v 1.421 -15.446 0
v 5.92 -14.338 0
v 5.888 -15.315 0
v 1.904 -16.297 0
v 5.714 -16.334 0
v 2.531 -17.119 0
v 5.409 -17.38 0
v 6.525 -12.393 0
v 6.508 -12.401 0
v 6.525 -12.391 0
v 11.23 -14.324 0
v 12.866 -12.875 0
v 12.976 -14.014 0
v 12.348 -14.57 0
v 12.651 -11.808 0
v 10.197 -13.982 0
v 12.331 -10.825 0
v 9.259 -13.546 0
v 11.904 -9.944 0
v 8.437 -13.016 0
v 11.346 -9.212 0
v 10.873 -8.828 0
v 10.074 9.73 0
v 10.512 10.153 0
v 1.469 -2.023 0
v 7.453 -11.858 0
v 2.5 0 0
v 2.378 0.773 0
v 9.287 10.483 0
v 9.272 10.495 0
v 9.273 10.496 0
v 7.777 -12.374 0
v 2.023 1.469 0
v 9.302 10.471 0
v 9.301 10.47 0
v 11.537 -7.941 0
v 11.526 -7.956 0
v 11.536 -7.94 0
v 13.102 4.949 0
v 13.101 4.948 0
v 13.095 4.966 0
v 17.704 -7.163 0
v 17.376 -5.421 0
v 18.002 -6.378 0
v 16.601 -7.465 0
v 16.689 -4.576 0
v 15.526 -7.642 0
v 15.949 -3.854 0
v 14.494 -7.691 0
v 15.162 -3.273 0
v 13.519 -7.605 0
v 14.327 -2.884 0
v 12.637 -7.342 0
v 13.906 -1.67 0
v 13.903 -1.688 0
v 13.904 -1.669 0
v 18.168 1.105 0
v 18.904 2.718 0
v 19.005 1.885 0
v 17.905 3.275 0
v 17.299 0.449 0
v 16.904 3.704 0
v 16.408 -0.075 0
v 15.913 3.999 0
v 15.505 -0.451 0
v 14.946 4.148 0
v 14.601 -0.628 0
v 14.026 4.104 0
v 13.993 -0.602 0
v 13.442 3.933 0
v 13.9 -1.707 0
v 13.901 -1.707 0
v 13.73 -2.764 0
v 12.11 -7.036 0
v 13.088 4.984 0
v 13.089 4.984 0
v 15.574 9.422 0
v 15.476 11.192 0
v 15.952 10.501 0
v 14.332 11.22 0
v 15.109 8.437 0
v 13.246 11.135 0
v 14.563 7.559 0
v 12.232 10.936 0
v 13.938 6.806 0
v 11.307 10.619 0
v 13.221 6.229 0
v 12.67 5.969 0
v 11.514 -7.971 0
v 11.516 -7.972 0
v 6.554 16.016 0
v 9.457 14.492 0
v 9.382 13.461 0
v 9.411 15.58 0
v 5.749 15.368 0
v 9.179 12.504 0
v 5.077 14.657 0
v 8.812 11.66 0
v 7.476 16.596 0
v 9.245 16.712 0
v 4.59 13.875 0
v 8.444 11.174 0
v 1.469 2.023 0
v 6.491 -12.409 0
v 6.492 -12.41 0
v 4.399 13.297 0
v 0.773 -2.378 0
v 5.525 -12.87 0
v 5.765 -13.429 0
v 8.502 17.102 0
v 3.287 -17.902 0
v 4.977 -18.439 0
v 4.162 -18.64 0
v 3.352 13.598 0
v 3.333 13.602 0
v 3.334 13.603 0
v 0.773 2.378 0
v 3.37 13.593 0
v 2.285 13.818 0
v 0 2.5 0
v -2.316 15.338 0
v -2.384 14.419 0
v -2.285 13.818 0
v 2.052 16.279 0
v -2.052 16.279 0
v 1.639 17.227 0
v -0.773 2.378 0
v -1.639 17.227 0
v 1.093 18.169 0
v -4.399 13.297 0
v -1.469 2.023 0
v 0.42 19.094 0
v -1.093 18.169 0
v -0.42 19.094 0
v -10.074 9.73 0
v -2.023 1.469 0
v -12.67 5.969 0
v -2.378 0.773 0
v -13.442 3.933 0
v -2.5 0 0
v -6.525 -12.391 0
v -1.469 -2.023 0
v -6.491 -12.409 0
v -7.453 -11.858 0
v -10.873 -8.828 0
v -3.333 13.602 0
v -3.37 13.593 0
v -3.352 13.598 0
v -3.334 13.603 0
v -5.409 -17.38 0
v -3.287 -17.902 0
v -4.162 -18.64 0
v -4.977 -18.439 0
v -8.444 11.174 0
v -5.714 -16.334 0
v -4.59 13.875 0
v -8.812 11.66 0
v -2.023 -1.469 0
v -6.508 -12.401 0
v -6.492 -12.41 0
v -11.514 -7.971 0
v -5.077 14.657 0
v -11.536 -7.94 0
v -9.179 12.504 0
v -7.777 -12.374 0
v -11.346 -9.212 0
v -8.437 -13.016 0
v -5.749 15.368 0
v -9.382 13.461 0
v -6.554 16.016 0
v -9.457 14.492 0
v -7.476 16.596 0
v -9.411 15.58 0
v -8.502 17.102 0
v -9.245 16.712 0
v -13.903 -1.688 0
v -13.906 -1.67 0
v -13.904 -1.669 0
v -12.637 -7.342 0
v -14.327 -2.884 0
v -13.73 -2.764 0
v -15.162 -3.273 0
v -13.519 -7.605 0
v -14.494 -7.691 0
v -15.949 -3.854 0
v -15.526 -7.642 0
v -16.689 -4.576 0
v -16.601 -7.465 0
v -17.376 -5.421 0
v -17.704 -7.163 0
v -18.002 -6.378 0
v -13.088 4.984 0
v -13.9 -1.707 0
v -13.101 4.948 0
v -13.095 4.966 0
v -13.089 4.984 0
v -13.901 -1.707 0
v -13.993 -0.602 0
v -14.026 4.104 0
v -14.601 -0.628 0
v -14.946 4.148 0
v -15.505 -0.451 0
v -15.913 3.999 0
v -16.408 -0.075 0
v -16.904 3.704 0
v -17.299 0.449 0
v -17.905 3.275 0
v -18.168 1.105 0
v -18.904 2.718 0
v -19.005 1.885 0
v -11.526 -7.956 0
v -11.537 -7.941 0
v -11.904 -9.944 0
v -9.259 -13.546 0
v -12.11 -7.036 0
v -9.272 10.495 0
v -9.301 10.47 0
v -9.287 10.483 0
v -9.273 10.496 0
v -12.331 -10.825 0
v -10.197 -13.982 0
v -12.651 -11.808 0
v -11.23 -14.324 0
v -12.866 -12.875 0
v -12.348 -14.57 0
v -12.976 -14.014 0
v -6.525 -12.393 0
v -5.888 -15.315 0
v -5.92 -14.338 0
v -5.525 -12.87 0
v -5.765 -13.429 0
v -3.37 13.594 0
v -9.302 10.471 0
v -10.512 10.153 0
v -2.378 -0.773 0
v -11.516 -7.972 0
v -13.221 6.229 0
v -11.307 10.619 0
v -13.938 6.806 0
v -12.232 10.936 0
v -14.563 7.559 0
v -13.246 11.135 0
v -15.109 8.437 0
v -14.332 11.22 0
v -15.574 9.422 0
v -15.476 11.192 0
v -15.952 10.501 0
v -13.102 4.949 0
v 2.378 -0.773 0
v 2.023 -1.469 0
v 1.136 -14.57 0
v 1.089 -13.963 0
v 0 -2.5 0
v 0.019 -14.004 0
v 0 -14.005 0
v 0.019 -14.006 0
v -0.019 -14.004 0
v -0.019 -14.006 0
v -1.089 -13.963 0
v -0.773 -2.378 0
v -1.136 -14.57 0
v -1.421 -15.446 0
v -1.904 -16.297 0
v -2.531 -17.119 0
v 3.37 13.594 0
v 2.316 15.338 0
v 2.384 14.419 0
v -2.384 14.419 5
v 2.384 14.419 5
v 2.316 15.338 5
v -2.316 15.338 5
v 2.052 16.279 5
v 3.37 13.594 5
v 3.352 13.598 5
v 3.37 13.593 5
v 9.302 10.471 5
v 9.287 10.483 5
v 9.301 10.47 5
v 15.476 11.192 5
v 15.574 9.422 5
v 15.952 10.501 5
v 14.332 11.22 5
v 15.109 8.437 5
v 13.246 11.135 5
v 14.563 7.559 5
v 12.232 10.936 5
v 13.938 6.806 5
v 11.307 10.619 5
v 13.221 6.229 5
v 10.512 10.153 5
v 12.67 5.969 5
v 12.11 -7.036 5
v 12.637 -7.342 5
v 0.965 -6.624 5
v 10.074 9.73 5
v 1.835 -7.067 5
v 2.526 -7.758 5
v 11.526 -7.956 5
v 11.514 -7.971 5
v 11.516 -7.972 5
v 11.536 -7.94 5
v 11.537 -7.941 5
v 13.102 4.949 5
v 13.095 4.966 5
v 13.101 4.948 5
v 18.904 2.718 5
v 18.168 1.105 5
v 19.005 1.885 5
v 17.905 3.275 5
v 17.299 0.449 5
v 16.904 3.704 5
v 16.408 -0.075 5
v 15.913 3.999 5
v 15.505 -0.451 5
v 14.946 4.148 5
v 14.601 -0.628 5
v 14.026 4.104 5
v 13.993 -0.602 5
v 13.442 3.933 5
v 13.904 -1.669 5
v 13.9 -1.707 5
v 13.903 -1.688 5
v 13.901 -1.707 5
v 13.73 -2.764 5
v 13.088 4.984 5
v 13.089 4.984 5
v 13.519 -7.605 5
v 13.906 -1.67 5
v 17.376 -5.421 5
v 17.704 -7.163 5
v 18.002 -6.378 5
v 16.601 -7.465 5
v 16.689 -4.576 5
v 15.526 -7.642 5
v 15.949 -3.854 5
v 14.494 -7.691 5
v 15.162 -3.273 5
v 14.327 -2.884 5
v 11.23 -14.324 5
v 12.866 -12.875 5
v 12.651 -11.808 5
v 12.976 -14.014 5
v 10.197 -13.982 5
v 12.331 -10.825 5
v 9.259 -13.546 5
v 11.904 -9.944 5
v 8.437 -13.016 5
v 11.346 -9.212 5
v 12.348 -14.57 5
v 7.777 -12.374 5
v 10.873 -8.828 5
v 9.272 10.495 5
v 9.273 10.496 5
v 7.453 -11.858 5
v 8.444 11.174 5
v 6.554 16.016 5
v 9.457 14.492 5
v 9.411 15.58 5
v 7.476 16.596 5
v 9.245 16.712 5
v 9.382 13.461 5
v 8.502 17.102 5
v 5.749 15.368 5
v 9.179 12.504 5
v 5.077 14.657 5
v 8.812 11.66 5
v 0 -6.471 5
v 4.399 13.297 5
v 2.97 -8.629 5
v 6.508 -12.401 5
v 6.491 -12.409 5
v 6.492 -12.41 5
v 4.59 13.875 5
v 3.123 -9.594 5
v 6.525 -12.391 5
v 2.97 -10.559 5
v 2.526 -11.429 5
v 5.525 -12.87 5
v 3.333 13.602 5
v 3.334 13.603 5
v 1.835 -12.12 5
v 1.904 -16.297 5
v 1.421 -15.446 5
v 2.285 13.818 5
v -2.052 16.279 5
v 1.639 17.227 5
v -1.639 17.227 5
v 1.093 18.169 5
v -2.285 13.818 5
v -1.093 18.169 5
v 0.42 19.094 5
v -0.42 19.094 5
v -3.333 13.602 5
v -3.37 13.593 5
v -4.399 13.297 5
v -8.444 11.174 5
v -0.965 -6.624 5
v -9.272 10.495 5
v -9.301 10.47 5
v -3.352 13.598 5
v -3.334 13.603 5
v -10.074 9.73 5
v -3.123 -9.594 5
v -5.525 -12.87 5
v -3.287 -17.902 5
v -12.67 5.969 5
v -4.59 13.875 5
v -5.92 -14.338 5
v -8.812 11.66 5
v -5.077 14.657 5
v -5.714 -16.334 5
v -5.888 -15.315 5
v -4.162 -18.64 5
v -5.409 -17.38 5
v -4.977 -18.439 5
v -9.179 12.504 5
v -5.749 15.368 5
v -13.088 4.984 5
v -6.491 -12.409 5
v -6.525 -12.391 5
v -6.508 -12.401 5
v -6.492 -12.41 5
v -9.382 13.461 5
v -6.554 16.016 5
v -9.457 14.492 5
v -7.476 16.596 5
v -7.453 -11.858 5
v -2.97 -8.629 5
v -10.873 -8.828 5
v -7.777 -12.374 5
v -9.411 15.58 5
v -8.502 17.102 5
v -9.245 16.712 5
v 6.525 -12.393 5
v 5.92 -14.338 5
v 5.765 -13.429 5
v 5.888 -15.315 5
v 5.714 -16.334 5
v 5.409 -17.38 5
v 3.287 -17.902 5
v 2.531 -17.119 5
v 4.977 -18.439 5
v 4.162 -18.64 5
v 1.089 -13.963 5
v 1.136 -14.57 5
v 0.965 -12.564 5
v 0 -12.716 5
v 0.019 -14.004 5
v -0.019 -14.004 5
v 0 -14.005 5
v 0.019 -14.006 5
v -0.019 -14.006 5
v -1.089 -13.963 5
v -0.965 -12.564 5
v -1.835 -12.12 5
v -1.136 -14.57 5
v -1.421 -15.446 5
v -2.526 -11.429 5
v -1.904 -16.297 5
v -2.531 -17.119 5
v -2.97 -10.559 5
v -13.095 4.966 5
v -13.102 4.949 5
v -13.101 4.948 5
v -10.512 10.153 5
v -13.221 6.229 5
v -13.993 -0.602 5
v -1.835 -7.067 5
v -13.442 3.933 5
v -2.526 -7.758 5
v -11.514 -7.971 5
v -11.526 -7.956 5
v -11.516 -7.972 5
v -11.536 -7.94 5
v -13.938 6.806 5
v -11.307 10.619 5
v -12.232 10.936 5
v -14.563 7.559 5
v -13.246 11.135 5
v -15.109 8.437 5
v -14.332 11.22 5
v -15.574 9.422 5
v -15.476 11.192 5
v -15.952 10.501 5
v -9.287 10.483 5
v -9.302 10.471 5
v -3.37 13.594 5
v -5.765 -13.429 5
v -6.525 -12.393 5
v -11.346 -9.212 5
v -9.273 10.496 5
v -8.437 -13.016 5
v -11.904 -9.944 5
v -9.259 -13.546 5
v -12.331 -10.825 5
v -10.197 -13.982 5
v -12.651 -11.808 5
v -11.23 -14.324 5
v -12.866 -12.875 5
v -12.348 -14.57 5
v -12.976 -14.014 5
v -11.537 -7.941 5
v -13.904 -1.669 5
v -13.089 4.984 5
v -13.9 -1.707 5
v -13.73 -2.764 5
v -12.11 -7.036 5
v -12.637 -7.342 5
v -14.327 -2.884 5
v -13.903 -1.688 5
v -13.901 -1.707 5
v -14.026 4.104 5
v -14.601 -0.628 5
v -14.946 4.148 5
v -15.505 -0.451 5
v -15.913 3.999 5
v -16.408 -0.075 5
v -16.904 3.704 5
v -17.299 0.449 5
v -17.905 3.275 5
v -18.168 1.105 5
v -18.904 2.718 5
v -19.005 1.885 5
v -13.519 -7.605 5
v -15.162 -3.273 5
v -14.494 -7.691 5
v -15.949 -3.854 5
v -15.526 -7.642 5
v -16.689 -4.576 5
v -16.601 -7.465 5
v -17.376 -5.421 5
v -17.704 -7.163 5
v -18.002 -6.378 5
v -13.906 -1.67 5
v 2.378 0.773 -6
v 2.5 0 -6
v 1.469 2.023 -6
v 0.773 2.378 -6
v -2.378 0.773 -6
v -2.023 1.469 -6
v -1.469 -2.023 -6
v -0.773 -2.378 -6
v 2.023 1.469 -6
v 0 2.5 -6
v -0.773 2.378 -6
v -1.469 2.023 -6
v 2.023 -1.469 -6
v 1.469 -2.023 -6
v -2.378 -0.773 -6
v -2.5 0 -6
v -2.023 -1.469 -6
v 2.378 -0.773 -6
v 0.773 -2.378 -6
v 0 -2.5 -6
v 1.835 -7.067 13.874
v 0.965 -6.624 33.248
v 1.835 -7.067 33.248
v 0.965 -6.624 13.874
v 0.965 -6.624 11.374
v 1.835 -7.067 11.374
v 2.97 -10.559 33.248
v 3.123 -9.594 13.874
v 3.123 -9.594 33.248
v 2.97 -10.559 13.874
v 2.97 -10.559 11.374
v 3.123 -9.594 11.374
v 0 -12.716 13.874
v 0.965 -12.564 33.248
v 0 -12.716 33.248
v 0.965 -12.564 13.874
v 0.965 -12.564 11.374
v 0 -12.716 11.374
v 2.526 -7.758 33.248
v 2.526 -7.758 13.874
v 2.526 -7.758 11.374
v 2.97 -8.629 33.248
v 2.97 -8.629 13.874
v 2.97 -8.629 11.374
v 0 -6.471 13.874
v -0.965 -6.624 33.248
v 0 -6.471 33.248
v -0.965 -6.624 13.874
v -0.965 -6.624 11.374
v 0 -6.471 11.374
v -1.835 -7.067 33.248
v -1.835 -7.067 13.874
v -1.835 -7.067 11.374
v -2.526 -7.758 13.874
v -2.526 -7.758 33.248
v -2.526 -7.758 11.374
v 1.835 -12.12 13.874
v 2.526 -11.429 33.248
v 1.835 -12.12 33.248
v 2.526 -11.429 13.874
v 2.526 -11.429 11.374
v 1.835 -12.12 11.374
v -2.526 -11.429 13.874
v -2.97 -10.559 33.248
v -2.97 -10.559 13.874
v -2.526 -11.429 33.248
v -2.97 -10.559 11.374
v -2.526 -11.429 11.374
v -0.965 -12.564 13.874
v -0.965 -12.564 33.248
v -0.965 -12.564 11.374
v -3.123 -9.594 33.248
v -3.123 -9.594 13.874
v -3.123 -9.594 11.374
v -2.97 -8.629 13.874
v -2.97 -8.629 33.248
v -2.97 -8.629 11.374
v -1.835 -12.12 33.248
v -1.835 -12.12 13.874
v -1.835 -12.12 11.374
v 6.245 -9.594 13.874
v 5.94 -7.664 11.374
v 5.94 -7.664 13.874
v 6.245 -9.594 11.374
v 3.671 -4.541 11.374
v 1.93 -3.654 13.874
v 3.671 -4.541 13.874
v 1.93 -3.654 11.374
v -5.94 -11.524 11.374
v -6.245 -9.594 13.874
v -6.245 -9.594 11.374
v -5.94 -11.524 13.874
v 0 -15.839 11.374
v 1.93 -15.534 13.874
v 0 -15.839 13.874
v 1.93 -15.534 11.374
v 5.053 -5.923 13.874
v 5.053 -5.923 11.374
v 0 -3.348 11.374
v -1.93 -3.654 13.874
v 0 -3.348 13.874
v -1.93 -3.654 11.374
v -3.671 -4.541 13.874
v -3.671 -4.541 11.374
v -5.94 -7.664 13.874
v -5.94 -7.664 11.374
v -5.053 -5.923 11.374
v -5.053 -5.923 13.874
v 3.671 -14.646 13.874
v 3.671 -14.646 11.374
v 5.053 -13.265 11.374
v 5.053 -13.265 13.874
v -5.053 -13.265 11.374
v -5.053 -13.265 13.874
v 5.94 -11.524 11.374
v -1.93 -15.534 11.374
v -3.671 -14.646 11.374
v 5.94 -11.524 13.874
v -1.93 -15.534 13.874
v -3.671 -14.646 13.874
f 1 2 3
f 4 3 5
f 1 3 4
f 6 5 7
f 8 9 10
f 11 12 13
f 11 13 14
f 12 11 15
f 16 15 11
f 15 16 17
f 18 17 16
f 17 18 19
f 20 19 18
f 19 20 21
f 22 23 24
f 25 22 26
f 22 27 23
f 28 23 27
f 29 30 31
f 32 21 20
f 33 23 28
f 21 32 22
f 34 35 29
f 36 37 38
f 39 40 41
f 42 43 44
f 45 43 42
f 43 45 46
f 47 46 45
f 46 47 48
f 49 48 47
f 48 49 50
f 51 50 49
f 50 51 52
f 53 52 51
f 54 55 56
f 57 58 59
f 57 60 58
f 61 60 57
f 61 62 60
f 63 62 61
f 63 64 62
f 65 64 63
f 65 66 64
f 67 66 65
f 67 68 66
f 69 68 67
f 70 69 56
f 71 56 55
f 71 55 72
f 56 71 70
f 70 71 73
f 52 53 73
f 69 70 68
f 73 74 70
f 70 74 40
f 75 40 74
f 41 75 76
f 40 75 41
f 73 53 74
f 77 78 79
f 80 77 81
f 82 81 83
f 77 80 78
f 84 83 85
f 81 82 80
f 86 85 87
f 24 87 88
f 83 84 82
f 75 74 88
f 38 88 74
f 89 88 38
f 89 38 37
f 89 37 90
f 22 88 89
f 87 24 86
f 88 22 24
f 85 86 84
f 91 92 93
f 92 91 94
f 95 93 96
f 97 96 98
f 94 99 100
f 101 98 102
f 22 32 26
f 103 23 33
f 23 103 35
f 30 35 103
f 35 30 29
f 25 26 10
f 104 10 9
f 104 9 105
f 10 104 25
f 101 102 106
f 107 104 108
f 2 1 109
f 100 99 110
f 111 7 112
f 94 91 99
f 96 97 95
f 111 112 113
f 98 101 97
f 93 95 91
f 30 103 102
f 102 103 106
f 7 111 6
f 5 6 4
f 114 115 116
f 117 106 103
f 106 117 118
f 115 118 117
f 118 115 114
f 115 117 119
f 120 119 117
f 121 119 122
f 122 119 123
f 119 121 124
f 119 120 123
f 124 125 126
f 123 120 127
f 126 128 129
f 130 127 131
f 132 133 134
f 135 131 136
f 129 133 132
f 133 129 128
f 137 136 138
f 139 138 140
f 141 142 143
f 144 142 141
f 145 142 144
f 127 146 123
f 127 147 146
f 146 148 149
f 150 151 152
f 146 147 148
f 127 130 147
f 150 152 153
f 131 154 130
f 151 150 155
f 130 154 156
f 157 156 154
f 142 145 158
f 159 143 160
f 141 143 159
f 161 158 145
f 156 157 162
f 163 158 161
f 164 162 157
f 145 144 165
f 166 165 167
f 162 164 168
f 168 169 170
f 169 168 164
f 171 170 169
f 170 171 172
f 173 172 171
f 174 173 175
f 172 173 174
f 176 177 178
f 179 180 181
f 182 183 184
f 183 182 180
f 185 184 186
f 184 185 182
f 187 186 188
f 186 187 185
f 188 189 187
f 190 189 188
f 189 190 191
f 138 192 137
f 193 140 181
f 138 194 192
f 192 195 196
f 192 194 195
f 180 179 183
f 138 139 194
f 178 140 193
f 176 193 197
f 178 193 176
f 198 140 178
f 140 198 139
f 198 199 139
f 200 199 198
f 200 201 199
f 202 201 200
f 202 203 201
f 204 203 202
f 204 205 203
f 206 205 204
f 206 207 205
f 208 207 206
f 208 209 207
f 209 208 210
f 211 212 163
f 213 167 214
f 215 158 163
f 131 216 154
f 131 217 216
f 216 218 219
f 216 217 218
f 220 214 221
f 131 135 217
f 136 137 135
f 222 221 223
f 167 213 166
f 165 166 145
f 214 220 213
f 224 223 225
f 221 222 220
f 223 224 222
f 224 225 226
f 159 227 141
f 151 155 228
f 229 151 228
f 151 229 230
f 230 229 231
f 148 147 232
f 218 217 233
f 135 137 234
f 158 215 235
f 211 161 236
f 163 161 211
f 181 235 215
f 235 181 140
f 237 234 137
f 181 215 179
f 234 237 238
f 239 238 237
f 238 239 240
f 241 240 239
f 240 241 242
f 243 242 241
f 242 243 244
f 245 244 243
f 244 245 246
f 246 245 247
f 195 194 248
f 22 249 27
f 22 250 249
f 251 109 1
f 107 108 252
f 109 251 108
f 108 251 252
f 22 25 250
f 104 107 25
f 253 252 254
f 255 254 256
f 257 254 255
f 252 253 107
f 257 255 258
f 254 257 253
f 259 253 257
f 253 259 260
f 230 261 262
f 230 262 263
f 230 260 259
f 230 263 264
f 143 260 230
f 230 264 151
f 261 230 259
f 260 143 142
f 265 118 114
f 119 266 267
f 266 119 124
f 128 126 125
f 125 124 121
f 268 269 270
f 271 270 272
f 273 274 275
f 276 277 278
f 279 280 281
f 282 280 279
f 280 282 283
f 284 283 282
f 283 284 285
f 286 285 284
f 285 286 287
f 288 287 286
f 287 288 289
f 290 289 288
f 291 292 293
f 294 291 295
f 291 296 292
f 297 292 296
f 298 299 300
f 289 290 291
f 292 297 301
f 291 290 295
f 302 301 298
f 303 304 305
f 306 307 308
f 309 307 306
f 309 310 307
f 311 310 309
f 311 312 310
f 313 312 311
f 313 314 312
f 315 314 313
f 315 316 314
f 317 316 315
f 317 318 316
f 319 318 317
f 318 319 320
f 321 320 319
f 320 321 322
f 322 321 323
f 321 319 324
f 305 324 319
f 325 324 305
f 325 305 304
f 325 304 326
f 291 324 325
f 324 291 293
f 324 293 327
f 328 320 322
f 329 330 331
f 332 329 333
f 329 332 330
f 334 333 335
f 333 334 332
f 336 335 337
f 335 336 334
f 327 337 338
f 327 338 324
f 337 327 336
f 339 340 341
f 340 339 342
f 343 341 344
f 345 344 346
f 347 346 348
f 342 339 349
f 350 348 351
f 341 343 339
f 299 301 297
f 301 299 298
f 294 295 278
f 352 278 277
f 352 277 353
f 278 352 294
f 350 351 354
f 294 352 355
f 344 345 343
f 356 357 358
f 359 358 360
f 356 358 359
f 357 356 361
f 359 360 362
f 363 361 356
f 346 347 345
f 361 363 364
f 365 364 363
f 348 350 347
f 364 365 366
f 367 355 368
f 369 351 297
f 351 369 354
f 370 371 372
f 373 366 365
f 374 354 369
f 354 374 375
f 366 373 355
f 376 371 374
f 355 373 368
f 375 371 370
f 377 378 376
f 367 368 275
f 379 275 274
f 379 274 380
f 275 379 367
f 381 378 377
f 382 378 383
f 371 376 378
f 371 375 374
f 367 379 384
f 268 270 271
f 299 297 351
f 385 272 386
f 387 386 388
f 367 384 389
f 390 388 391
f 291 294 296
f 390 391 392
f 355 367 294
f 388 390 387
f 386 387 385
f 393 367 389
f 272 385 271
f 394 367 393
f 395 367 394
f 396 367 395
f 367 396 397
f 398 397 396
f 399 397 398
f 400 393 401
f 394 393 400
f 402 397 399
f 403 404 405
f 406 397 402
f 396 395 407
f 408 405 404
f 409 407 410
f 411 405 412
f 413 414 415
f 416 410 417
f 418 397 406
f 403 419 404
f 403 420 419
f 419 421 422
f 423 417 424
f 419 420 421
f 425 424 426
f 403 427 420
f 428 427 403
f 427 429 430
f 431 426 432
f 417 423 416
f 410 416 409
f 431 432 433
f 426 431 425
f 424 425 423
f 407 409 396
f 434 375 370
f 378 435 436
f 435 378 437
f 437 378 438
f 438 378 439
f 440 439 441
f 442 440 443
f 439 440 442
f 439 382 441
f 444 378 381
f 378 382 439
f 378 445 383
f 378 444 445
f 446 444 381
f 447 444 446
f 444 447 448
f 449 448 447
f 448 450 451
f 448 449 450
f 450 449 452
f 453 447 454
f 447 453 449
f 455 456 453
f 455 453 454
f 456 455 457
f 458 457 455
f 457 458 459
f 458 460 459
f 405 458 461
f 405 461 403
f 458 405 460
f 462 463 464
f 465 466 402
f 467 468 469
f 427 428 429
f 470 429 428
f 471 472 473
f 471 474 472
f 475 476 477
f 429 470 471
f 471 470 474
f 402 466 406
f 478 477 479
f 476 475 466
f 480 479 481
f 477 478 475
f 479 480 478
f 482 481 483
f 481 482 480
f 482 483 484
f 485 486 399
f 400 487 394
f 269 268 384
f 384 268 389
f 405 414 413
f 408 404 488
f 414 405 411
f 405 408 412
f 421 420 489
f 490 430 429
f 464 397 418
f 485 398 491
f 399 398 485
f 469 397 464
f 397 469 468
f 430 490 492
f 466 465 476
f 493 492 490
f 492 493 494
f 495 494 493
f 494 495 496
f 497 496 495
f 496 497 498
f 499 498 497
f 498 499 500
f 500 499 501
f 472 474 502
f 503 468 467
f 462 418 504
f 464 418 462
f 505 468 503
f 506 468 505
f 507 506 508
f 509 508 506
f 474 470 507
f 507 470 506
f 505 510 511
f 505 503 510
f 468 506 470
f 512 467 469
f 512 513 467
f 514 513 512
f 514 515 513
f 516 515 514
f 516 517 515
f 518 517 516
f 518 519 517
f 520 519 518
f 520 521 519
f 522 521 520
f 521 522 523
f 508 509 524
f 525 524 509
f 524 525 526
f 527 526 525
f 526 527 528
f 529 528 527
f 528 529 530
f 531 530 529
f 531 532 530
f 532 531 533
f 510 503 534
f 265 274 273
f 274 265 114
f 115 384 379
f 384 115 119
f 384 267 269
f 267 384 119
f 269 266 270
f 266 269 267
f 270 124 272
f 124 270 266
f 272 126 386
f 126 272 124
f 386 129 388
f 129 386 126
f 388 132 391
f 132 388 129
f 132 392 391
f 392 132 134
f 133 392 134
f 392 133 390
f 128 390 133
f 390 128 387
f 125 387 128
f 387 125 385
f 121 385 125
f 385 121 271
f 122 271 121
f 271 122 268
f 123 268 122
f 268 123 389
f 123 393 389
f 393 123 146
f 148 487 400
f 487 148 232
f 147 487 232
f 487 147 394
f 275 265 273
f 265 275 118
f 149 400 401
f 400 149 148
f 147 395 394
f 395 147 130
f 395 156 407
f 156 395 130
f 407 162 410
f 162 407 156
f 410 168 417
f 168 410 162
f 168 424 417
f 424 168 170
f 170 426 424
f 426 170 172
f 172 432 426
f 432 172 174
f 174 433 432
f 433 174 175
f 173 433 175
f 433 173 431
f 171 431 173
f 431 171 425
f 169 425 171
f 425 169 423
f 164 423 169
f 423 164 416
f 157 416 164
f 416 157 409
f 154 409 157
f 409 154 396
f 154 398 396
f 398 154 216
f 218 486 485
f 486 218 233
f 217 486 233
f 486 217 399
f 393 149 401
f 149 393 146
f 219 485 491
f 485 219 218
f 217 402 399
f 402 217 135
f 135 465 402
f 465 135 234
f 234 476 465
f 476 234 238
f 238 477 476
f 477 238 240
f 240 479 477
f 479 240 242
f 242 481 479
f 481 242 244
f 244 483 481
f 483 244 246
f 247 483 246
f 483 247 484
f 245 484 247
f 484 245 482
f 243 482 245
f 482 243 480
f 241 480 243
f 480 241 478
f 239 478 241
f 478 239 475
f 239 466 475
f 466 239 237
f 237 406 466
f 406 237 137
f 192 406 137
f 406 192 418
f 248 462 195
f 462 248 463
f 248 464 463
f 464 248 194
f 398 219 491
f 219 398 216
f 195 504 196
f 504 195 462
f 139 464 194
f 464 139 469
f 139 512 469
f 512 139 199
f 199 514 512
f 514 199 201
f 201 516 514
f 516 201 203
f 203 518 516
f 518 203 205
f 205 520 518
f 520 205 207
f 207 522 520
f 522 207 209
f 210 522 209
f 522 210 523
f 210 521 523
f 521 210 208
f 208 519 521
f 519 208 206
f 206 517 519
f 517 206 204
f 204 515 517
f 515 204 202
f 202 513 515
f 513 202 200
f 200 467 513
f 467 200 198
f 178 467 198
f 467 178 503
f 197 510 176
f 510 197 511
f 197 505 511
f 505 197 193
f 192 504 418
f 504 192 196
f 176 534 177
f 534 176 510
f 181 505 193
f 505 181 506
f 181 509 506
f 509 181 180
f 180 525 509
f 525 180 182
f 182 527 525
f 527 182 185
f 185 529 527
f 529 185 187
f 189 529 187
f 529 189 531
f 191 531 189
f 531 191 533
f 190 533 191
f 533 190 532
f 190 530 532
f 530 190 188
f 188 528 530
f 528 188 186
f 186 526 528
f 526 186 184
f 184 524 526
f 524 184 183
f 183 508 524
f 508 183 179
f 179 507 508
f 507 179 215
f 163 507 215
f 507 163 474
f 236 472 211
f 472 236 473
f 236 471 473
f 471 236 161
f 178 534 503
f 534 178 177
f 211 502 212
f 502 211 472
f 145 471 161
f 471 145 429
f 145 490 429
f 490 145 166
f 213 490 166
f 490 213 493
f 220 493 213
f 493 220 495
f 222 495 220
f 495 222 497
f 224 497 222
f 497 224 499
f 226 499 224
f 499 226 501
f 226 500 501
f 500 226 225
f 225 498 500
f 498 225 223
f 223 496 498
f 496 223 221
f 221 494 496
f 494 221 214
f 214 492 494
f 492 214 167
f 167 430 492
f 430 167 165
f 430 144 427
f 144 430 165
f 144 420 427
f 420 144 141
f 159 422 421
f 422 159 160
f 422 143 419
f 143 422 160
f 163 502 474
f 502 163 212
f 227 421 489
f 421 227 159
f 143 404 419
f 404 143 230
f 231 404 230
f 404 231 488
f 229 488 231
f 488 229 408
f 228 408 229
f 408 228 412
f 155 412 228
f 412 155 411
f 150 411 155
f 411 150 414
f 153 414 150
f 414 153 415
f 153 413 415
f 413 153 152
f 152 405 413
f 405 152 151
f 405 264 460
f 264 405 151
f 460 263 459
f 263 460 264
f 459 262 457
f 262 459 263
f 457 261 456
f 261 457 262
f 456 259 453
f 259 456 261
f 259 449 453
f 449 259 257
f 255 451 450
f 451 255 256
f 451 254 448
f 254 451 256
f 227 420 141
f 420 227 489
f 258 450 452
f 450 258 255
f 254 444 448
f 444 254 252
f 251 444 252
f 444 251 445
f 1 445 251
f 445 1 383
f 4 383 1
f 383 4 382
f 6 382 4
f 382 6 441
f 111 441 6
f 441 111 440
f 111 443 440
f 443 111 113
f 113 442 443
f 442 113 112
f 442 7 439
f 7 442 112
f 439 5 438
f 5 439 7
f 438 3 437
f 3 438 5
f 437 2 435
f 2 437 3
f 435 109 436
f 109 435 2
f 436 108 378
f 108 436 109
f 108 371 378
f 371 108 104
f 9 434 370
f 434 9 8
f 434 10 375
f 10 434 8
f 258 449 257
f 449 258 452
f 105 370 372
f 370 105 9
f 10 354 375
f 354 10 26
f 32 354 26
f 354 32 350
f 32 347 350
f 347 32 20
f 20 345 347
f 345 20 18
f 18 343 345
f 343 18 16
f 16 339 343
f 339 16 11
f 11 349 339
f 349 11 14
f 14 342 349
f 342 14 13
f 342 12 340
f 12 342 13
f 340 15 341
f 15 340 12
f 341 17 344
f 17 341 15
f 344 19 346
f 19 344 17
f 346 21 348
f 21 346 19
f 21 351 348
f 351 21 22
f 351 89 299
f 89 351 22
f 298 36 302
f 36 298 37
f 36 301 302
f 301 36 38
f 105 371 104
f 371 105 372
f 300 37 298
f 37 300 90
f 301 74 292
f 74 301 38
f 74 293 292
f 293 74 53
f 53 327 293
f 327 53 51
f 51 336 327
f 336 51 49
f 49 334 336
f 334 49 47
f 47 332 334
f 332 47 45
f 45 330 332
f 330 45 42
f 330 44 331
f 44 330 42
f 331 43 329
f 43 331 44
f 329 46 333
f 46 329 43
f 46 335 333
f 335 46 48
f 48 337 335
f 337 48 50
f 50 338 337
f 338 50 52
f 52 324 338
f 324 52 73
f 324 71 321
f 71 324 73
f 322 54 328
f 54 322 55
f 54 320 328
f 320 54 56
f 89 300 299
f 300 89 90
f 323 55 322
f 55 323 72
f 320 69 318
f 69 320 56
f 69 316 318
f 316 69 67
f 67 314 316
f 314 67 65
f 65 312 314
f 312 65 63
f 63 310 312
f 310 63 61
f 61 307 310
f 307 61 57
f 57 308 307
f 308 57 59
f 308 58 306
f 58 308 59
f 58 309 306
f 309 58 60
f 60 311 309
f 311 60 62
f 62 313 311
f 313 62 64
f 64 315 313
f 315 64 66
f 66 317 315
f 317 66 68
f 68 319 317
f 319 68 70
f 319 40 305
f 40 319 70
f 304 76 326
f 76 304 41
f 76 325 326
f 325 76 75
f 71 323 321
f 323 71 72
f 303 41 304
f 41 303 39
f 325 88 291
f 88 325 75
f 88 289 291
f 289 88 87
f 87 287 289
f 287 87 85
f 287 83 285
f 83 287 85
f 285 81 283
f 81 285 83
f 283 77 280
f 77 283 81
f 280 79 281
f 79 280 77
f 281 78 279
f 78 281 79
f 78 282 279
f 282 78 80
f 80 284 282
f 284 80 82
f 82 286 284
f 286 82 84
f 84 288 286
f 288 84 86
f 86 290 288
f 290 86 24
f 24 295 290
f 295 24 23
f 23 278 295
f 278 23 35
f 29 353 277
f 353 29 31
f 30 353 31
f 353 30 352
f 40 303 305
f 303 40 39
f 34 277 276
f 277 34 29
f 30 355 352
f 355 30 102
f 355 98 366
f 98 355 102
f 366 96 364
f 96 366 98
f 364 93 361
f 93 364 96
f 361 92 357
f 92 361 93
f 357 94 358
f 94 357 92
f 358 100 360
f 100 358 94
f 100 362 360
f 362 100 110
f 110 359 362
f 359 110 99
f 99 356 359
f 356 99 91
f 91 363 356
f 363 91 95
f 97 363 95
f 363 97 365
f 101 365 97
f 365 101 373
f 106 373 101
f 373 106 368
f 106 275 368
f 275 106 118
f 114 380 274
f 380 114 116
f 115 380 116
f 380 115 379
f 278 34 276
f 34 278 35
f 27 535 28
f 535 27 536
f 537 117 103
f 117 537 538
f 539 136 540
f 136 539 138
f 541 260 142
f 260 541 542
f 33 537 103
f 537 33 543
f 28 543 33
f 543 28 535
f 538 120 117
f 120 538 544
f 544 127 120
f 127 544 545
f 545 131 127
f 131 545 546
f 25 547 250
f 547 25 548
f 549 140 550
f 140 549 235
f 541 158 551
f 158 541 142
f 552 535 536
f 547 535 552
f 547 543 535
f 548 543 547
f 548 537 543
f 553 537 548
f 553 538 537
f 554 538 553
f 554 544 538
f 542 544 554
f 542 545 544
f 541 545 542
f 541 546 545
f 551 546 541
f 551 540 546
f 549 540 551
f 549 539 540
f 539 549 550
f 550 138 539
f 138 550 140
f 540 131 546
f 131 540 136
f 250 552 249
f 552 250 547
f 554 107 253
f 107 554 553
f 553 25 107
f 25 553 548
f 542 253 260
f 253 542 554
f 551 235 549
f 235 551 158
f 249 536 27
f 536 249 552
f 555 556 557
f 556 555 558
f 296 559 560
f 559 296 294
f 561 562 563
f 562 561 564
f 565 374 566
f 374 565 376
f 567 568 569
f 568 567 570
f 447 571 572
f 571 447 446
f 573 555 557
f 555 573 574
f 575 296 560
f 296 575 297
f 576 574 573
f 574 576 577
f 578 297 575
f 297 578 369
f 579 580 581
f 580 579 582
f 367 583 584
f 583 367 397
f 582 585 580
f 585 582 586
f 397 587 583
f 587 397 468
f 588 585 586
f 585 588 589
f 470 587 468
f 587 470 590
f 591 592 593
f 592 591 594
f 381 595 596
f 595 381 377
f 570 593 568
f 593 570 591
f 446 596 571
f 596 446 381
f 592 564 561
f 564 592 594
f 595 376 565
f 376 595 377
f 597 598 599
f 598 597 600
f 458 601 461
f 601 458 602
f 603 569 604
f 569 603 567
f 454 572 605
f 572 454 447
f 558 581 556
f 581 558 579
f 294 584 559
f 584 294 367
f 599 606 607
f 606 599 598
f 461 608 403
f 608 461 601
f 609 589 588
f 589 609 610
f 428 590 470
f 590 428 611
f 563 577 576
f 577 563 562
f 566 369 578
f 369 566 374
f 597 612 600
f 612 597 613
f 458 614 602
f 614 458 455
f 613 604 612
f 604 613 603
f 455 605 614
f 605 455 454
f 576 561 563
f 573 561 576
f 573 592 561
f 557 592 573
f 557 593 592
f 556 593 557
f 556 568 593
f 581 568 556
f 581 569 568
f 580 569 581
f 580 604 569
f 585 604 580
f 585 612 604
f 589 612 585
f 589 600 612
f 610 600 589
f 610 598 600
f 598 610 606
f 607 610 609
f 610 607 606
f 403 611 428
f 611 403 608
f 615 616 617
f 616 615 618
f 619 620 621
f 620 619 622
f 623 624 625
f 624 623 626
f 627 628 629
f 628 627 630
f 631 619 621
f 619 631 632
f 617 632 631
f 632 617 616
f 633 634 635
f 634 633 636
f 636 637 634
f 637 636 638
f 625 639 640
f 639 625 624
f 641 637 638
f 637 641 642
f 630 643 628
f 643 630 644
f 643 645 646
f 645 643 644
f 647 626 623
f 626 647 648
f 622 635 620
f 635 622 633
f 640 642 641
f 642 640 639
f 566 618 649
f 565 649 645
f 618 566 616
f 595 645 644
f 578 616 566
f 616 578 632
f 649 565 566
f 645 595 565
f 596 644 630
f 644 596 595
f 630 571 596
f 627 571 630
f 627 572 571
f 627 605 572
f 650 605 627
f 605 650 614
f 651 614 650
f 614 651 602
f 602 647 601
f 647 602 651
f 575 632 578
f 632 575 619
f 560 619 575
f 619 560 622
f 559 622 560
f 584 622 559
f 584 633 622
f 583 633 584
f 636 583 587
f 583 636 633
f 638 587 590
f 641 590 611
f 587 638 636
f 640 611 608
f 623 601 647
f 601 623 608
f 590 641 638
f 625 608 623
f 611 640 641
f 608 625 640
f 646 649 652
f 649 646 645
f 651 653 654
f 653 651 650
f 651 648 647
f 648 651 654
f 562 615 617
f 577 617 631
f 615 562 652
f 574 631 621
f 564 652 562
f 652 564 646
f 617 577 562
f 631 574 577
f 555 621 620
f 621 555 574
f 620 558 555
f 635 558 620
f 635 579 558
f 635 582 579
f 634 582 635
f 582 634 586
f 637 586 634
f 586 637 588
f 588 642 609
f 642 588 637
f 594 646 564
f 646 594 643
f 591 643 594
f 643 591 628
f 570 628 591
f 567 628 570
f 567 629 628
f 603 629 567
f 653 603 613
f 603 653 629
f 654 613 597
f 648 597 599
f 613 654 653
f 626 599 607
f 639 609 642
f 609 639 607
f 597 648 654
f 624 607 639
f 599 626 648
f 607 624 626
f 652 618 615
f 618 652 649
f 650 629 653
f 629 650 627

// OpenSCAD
//////////////////////////////////////////////////////////////////////////////////////////////
// Public Domain Parametric Involute Spur Gear (and involute helical gear and involute rack)
// version 1.1
// by Leemon Baird, 2011, Leemon@Leemon.com
//http://www.thingiverse.com/thing:5505
//
// This file is public domain.  Use it for any purpose, including commercial
// applications.  Attribution would be nice, but is not required.  There is
// no warranty of any kind, including its correctness, usefulness, or safety.
// 
// This is parameterized involute spur (or helical) gear.  It is much simpler and less powerful than
// others on Thingiverse.  But it is public domain.  I implemented it from scratch from the 
// descriptions and equations on Wikipedia and the web, using Mathematica for calculations and testing,
// and I now release it into the public domain.
//
//		http://en.wikipedia.org/wiki/Involute_gear
//		http://en.wikipedia.org/wiki/Gear
//		http://en.wikipedia.org/wiki/List_of_gear_nomenclature
//		http://gtrebaol.free.fr/doc/catia/spur_gear.html
//		http://www.cs.cmu.edu/~rapidproto/mechanisms/chpt7.html
//
// The module gear() gives an involute spur gear, with reasonable defaults for all the parameters.
// Normally, you should just choose the first 4 parameters, and let the rest be default values.
// The module gear() gives a gear in the XY plane, centered on the origin, with one tooth centered on
// the positive Y axis.  The various functions below it take the same parameters, and return various
// measurements for the gear.  The most important is pitch_radius, which tells how far apart to space
// gears that are meshing, and adendum_radius, which gives the size of the region filled by the gear.
// A gear has a "pitch circle", which is an invisible circle that cuts through the middle of each
// tooth (though not the exact center). In order for two gears to mesh, their pitch circles should 
// just touch.  So the distance between their centers should be pitch_radius() for one, plus pitch_radius() 
// for the other, which gives the radii of their pitch circles.
//
// In order for two gears to mesh, they must have the same mm_per_tooth and pressure_angle parameters.  
// mm_per_tooth gives the number of millimeters of arc around the pitch circle covered by one tooth and one
// space between teeth.  The pitch angle controls how flat or bulged the sides of the teeth are.  Common
// values include 14.5 degrees and 20 degrees, and occasionally 25.  Though I've seen 28 recommended for
// plastic gears. Larger numbers bulge out more, giving stronger teeth, so 28 degrees is the default here.
//
// The ratio of number_of_teeth for two meshing gears gives how many times one will make a full 
// revolution when the the other makes one full revolution.  If the two numbers are coprime (i.e. 
// are not both divisible by the same number greater than 1), then every tooth on one gear
// will meet every tooth on the other, for more even wear.  So coprime numbers of teeth are good.
//
// The module rack() gives a rack, which is a bar with teeth.  A rack can mesh with any
// gear that has the same mm_per_tooth and pressure_angle.
//
// Some terminology: 
// The outline of a gear is a smooth circle (the "pitch circle") which has mountains and valleys
// added so it is toothed.  So there is an inner circle (the "root circle") that touches the 
// base of all the teeth, an outer circle that touches the tips of all the teeth,
// and the invisible pitch circle in between them.  There is also a "base circle", which can be smaller than
// all three of the others, which controls the shape of the teeth.  The side of each tooth lies on the path 
// that the end of a string would follow if it were wrapped tightly around the base circle, then slowly unwound.  
// That shape is an "involute", which gives this type of gear its name.
//
//////////////////////////////////////////////////////////////////////////////////////////////

//An involute spur gear, with reasonable defaults for all the parameters.
//Normally, you should just choose the first 4 parameters, and let the rest be default values.
//Meshing gears must match in mm_per_tooth, pressure_angle, and twist,
//and be separated by the sum of their pitch radii, which can be found with pitch_radius().
module gear (
	mm_per_tooth    = 3,    //this is the "circular pitch", the circumference of the pitch circle divided by the number of teeth
	number_of_teeth = 11,   //total number of teeth around the entire perimeter
	thickness       = 6,    //thickness of gear in mm
	hole_diameter   = 3,    //diameter of the hole in the center, in mm
	twist           = 0,    //teeth rotate this many degrees from bottom of gear to top.  360 makes the gear a screw with each thread going around once
	teeth_to_hide   = 0,    //number of teeth to delete to make this only a fraction of a circle
	pressure_angle  = 28,   //Controls how straight or bulged the tooth sides are. In degrees.
	clearance       = 0.0,  //gap between top of a tooth on one gear and bottom of valley on a meshing gear (in millimeters)
	backlash        = 0.0   //gap between two meshing teeth, in the direction along the circumference of the pitch circle
) {
	assign(pi = 3.1415926)
	assign(p  = mm_per_tooth * number_of_teeth / pi / 2)  //radius of pitch circle
	assign(c  = p + mm_per_tooth / pi - clearance)        //radius of outer circle
	assign(b  = p*cos(pressure_angle))                    //radius of base circle
	assign(r  = p-(c-p)-clearance)                        //radius of root circle
	assign(t  = mm_per_tooth/2-backlash/2)                //tooth thickness at pitch circle
	assign(k  = -iang(b, p) - t/2/p/pi*180) {             //angle to where involute meets base circle on each side of tooth
		union() {
			for (i = [0:number_of_teeth-teeth_to_hide-1] )
				rotate([0,0,i*360/number_of_teeth])
					linear_extrude(height = thickness, center = true, convexity = 10, twist = twist)
						polygon(
							points=[
								[0, -hole_diameter/10],
								polar(r, -181/number_of_teeth),
								polar(r, r<b ? k : -180/number_of_teeth),
								q7(0/5,r,b,c,k, 1),q7(1/5,r,b,c,k, 1),q7(2/5,r,b,c,k, 1),q7(3/5,r,b,c,k, 1),q7(4/5,r,b,c,k, 1),q7(5/5,r,b,c,k, 1),
								q7(5/5,r,b,c,k,-1),q7(4/5,r,b,c,k,-1),q7(3/5,r,b,c,k,-1),q7(2/5,r,b,c,k,-1),q7(1/5,r,b,c,k,-1),q7(0/5,r,b,c,k,-1),
								polar(r, r<b ? -k : 180/number_of_teeth),
								polar(r, 181/number_of_teeth)
							],
 							paths=[[0,1,2,3,4,5,6,7,8,9,10,11,12,13,14,15,16]]
						);
			translate([0,0,-3]) cylinder(h=2*thickness+1, r=hole_diameter/2, center=true, $fn=20);
		}
	}
};	
//these 4 functions are used by gear
function polar(r,theta)   = r*[sin(theta), cos(theta)];                            //convert polar to cartesian coordinates
function iang(r1,r2)      = sqrt((r2/r1)*(r2/r1) - 1)/3.1415926*180 - acos(r1/r2); //unwind a string this many degrees to go from radius r1 to radius r2
function q7(f,r,b,r2,t,s) = q6(b,s,t,(1-f)*max(b,r)+f*r2);                         //radius a fraction f up the curved side of the tooth 
function q6(b,s,t,d)      = polar(d,s*(iang(b,d)+t));                              //point at radius d on the involute curve



//These 5 functions let the user find the derived dimensions of the gear.
//A gear fits within a circle of radius outer_radius, and two gears should have
//their centers separated by the sum of their pictch_radius.
function circular_pitch  (mm_per_tooth=3) = mm_per_tooth;                     //tooth density expressed as "circular pitch" in millimeters
function diametral_pitch (mm_per_tooth=3) = 3.1415926 / mm_per_tooth;         //tooth density expressed as "diametral pitch" in teeth per millimeter
function module_value    (mm_per_tooth=3) = mm_per_tooth / pi;                //tooth density expressed as "module" or "modulus" in millimeters
function pitch_radius    (mm_per_tooth=3,number_of_teeth=11) = mm_per_tooth * number_of_teeth / 3.1415926 / 2;
function outer_radius    (mm_per_tooth=3,number_of_teeth=11,clearance=0.1)    //The gear fits entirely within a cylinder of this radius.
	= mm_per_tooth*(1+number_of_teeth/2)/3.1415926  - clearance;              

//////////////////////////////////////////////////////////////////////////////////////////////
//example gear train.  
//Try it with OpenSCAD View/Animate command with 20 steps and 24 FPS.
//The gears will continue to be rotated to mesh correctly if you change the number of teeth.

n1 = 13; //red gear number of teeth
echo("num",ceil(n1*(3.6)));
n2 = ceil(n1*(3.6)); //green gear
n3 = ceil(n1*(1.5)); //extra gear
//n3 = 5;  //blue gear
//n4 = 20; //orange gear
//n5 = 8;  //gray rack
mm_per_tooth = 8; //all meshing gears need the same mm_per_tooth (and the same pressure_angle)
thickness    = 5;
vert_shift = thickness/2;
big_gear_thickness = thickness*1.2;
big_gear_vert_shift = big_gear_thickness/2;
hole         = 5; // diameter in mm
height       = 12;

d1 =pitch_radius(mm_per_tooth,n1);
d12=pitch_radius(mm_per_tooth,n1) + pitch_radius(mm_per_tooth,n2);
//d13=pitch_radius(mm_per_tooth,n1) + pitch_radius(mm_per_tooth,n3);
//d14=pitch_radius(mm_per_tooth,n1) + pitch_radius(mm_per_tooth,n4);

o_r1=outer_radius(mm_per_tooth,n1);
o_r2=outer_radius(mm_per_tooth,n2);
p_r1=pitch_radius(mm_per_tooth,n1);
p_r2=pitch_radius(mm_per_tooth,n2);

pin_radius    = (p_r1-(hole/2))/4.5;
pin_height   = o_r1*1.75;
pin_shift    = (hole/2)+(p_r1*(3/7));
canvas_thickness = big_gear_thickness/4;
bar_width = pin_radius*4;
bar_length = o_r1*11.5;
bar_hole_length = bar_length*.9;
support_radius = hole;
support_height = pin_height/2-thickness/2-1.5;

// driver gear
union () {
    translate([ 0, 0, vert_shift]) rotate([0,0, $t*360/n1]) color([1.00,0.75,0.75]) gear(mm_per_tooth,n1,thickness,hole);
    // driver gear handle
    union () {
        union () {
            translate([0, -pin_shift, pin_height/2]) color([1.00,0.75,0.75]) cylinder (h = pin_height, r=pin_radius, center = true, $fn=20);
            translate([0, -pin_shift, pin_height/2-thickness/2-1.5]) color([1.00,0.75,0.75]) cylinder (h = thickness/2, r=pin_radius*2, center = true, $fn=20);
        }
 //       translate([0, -pin_shift, pin_height/2+thickness/2+1.5]) color([1.00,0.75,0.75]) cylinder (h = thickness/2, r=pin_radius*1.75, center = true, $fn=20);
    }
} 

    
echo("outer radius small: ", o_r1);
echo("outer radius large: ", o_r2);
echo("pitch radius small: ", p_r1);
echo("pitch radius large: ", p_r2);
echo("pin_radius: ", pin_radius);
echo("pin_height: ", pin_height);
echo("bar_width: ", bar_width);
echo("bar_length: ", bar_length);
echo("n1: ", n1);
echo("n2: ", n2);
echo("n3: ", n3);
